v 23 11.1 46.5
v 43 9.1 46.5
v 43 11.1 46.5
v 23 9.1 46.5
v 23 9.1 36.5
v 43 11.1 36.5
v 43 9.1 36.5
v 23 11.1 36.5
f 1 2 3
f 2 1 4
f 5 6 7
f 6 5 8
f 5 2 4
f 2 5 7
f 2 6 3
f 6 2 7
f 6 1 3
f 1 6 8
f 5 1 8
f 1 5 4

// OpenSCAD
// file: D:/Projects/assembly-workshop/outputs/Screen_5in_SCR5-G_2026-10-30/checks/geometry.scad
// SCR5-G; mm; FRONT view: X right, Z up, Y into rack. Glass/plate front Y=0.
// Measured values: work/screen-5in/Dimensions.md. Physical fit/strength UNKNOWN.
part="plate";
DROP=0.45; // coupon winner can be substituted here; all three pins use this DROP
LIP=0.8; LIP_ON=true;
LIP_EDGES=[true,true,false,false]; // left,right,bottom,top; Brian: side lips only, cosmetic
FRAME_STEP=1.5; // measured glass-edge inset to metal LCD frame, left/right only
SHIM=0; // moves rear frame seat and plate-boss mating face back
$fn=48;
GCX=33; GCZ=41.5; PW=252; PH=88.8; PT=4;
GW=120.7; GH=77.2; CLEAR=0.2; WW=GW+2*CLEAR; WH=GH+2*CLEAR;
SEAT=13.3+SHIM; FT=3;
SO=[56.45,34]; BTN_X=[45.5,35.5,25.5];
PCB_TOP=38; GAP=0.10; LEAF_T=0.8;
HOLE=[3.4,40.3,44.7];
BX=[GCX-68,GCX+68]; BZ=[10,72];
// DSI connector X extent is unmeasured: conservative assumed 8 mm inward from PCB edge.
DSI=[GCX-60.5,9.1,GCZ-38+30,8,5.25,21];
module xz(y,d){translate([0,y+d,0])rotate([90,0,0])linear_extrude(d)children();}
// rr/rack_slots copied from SCR5-F; same exact slot centres, outline shifted -0.05 Z to centre 44.4.
module rr(w,h,r){hull()for(x=[-w/2+r,w/2-r],z=[-h/2+r,h/2-r])translate([x,z])circle(r=r);}
module rack_slots(){for(x=[-118.2625,118.2625],z=[6.323,38.127,50.773,82.577])translate([x,z])hull()for(dx=[-1.5,1.5])translate([dx,0])circle(d=7);}
module cyl_y(x,y,z,d,h){translate([x,y,z])rotate([-90,0,0])cylinder(d=d,h=h);}
module window_cut(){
  xz(-0.02,4.04)translate([GCX,GCZ])square([WW,WH],center=true);
  // 0.3 x 45-degree chamfer, square corners, front only.
  translate([GCX,0.3,GCZ])rotate([90,0,0])
    linear_extrude(height=0.3,scale=[(WW+0.6)/WW,(WH+0.6)/WH])square([WW,WH],center=true);
}
module lips(){
  // Cosmetic side ledges only; rear frame/standoffs set depth and retain the screen.
  if(LIP_ON)for(i=[0:3])if(LIP_EDGES[i]){
    if(i<2)translate([GCX+(i==0?-WW/2:WW/2-LIP),2.5,GCZ-GH/2+4])cube([LIP,0.8,GH-8]);
    else translate([GCX-GW/2+4,2.5,GCZ+(i==2?-WH/2:WH/2-LIP)])cube([GW-8,0.8,LIP]);
  }
}
// Leaf/nub/bump geometry copied from SCR5-WP-A, translated to this glass centre.
module leaves(){for(x=BTN_X)translate([GCX+x-1.5,0,GCZ]){
  translate([0,0,PCB_TOP+GAP+0.9+0.1])cube([3,11.8,LEAF_T]);
  translate([0,10.2,PCB_TOP+GAP])cube([3,1.4,1.0+LEAF_T/2]);
  translate([0,10.4,PCB_TOP+GAP+1.0+LEAF_T])cube([3,1.0,0.9]);
}}
module plate(){difference(){union(){
  difference(){xz(0,PT)translate([0,PH/2])rr(PW,PH,2.5);window_cut();}
  for(x=BX,z=BZ)cyl_y(x,3.9,z,8,SEAT-3.9);
  leaves(); lips();
 }
 xz(-0.02,4.04)rack_slots();
 for(x=BTN_X)translate([GCX+x-HOLE[0]/2,-0.02,GCZ+HOLE[1]])cube([HOLE[0],SEAT+FT+0.04,HOLE[2]-HOLE[1]]);
 // Printed-in screw pilots (no heat-set OD assumption): nominal M2.5, fit UNKNOWN.
 for(x=BX,z=BZ)cyl_y(x,SEAT-6,z,2.1,6.02);
 // Rear engraving, 0.5 deep, left field.
 xz(3.5,0.52)translate([-75,40])mirror([1,0])text("SCR5-G",size=6,halign="center",font="Liberation Sans:style=Bold");
}}
module frame_blank(){
  // C-shaped perimeter; no material across the board centre / touch FPC.
  xz(SEAT,FT)translate([GCX,GCZ])difference(){square([132,76],center=true);square([116,60],center=true);}
  for(sx=[-1,1],sz=[-1,1])cyl_y(GCX+sx*SO[0],SEAT,GCZ+sz*SO[1],9,FT);
  for(x=BX,z=BZ)hull(){cyl_y(x,SEAT,z,8,FT);cyl_y(GCX+(x<GCX?-62:62),SEAT,z,8,FT);}
}
module dsi_keepout(){translate([DSI[0]-3,DSI[1]-3,DSI[2]-3])cube([DSI[3]+6,DSI[4]+6,DSI[5]+6]);}
module ribbon_route(){
  // Open left/up corridor 18 mm wide; extends past top of plate.
  translate([GCX-84,6.1,GCZ-11])cube([18,24,65]);
  translate([GCX-84,6.1,GCZ-11])cube([32,24,27]);
}
module frame(){difference(){frame_blank();dsi_keepout();ribbon_route();
 for(sx=[-1,1],sz=[-1,1])cyl_y(GCX+sx*SO[0],SEAT-0.02,GCZ+sz*SO[1],2.8,FT+0.04);
 for(x=BX,z=BZ)cyl_y(x,SEAT-0.02,z,2.8,FT+0.04);
}}
// Pin polygon/cap/notch/dot design copied unchanged from SCR5-WP-A.
module pin(d,dots){s=2*d+0.5;difference(){union(){
 translate([-1.5,0,0])rotate([90,0,90])linear_extrude(3)polygon([
 [-s-0.02,40.5],[10.2,40.5],[10.2,41.0],[11.5,41.0],[11.5+2*d,41.0-d],[15,41.0-d],[15,44.5],[-s-0.02,44.5]]);
 translate([-2.5,-s-1.5,39.6])cube([5,1.5,5.8]);
 }for(i=[0:dots-1])translate([(i-(dots-1)/2)*1.4,-s-1.5-0.01,43.5])rotate([-90,0,0])cylinder(d=0.9,h=0.4);}}
module placed_pin(i){translate([GCX+BTN_X[i],0,GCZ])pin(DROP,i+1);}
// Measured layers: cover glass 0.9 + second glass 1.6, metal frame 3.0,
// open gap 2.0, PCB 1.6. Metal frame inset ~1.5 at LEFT/RIGHT only.
// PCB centred under glass and full metal-frame top/bottom extent remain UNKNOWN.
module glass(){translate([GCX-GW/2,0,GCZ-GH/2])cube([GW,2.5,GH]);}
module lcd(){
  translate([GCX-GW/2+FRAME_STEP,2.5,GCZ-GH/2])cube([GW-2*FRAME_STEP,3.0,GH]);
}
module pcb(){translate([GCX-60.5,7.5,GCZ-38])cube([121,1.6,76]);}
module standoffs(){for(sx=[-1,1],sz=[-1,1])difference(){cyl_y(GCX+sx*SO[0],9.1,GCZ+sz*SO[1],5.5,4.2);cyl_y(GCX+sx*SO[0],9.08,GCZ+sz*SO[1],2.5,4.24);}}
module buttons(){for(x=BTN_X){
 translate([GCX+x-3.5,9.1,GCZ+38-3.4])cube([7,3.6,2.4]);
 translate([GCX+x-1.5,9.1,GCZ+37])cube([3,3.6,1]);
}}
module dsi(){translate([DSI[0],DSI[1],DSI[2]])cube([DSI[3],DSI[4],DSI[5]]);}
module touch(){translate([GCX-10,9.1,GCZ-5])cube([20,2,10]);} // lateral extent unmeasured
module dummy(){glass();lcd();pcb();standoffs();buttons();dsi();touch();}
module assembly(){color("gray")plate();color("orange")frame();for(i=[0:2])color("cyan")placed_pin(i);color([0.2,0.3,0.4,0.4])dummy();}
// main file
include <D:/Projects/assembly-workshop/outputs/Screen_5in_SCR5-G_2026-10-30/checks/geometry.scad>
touch();
